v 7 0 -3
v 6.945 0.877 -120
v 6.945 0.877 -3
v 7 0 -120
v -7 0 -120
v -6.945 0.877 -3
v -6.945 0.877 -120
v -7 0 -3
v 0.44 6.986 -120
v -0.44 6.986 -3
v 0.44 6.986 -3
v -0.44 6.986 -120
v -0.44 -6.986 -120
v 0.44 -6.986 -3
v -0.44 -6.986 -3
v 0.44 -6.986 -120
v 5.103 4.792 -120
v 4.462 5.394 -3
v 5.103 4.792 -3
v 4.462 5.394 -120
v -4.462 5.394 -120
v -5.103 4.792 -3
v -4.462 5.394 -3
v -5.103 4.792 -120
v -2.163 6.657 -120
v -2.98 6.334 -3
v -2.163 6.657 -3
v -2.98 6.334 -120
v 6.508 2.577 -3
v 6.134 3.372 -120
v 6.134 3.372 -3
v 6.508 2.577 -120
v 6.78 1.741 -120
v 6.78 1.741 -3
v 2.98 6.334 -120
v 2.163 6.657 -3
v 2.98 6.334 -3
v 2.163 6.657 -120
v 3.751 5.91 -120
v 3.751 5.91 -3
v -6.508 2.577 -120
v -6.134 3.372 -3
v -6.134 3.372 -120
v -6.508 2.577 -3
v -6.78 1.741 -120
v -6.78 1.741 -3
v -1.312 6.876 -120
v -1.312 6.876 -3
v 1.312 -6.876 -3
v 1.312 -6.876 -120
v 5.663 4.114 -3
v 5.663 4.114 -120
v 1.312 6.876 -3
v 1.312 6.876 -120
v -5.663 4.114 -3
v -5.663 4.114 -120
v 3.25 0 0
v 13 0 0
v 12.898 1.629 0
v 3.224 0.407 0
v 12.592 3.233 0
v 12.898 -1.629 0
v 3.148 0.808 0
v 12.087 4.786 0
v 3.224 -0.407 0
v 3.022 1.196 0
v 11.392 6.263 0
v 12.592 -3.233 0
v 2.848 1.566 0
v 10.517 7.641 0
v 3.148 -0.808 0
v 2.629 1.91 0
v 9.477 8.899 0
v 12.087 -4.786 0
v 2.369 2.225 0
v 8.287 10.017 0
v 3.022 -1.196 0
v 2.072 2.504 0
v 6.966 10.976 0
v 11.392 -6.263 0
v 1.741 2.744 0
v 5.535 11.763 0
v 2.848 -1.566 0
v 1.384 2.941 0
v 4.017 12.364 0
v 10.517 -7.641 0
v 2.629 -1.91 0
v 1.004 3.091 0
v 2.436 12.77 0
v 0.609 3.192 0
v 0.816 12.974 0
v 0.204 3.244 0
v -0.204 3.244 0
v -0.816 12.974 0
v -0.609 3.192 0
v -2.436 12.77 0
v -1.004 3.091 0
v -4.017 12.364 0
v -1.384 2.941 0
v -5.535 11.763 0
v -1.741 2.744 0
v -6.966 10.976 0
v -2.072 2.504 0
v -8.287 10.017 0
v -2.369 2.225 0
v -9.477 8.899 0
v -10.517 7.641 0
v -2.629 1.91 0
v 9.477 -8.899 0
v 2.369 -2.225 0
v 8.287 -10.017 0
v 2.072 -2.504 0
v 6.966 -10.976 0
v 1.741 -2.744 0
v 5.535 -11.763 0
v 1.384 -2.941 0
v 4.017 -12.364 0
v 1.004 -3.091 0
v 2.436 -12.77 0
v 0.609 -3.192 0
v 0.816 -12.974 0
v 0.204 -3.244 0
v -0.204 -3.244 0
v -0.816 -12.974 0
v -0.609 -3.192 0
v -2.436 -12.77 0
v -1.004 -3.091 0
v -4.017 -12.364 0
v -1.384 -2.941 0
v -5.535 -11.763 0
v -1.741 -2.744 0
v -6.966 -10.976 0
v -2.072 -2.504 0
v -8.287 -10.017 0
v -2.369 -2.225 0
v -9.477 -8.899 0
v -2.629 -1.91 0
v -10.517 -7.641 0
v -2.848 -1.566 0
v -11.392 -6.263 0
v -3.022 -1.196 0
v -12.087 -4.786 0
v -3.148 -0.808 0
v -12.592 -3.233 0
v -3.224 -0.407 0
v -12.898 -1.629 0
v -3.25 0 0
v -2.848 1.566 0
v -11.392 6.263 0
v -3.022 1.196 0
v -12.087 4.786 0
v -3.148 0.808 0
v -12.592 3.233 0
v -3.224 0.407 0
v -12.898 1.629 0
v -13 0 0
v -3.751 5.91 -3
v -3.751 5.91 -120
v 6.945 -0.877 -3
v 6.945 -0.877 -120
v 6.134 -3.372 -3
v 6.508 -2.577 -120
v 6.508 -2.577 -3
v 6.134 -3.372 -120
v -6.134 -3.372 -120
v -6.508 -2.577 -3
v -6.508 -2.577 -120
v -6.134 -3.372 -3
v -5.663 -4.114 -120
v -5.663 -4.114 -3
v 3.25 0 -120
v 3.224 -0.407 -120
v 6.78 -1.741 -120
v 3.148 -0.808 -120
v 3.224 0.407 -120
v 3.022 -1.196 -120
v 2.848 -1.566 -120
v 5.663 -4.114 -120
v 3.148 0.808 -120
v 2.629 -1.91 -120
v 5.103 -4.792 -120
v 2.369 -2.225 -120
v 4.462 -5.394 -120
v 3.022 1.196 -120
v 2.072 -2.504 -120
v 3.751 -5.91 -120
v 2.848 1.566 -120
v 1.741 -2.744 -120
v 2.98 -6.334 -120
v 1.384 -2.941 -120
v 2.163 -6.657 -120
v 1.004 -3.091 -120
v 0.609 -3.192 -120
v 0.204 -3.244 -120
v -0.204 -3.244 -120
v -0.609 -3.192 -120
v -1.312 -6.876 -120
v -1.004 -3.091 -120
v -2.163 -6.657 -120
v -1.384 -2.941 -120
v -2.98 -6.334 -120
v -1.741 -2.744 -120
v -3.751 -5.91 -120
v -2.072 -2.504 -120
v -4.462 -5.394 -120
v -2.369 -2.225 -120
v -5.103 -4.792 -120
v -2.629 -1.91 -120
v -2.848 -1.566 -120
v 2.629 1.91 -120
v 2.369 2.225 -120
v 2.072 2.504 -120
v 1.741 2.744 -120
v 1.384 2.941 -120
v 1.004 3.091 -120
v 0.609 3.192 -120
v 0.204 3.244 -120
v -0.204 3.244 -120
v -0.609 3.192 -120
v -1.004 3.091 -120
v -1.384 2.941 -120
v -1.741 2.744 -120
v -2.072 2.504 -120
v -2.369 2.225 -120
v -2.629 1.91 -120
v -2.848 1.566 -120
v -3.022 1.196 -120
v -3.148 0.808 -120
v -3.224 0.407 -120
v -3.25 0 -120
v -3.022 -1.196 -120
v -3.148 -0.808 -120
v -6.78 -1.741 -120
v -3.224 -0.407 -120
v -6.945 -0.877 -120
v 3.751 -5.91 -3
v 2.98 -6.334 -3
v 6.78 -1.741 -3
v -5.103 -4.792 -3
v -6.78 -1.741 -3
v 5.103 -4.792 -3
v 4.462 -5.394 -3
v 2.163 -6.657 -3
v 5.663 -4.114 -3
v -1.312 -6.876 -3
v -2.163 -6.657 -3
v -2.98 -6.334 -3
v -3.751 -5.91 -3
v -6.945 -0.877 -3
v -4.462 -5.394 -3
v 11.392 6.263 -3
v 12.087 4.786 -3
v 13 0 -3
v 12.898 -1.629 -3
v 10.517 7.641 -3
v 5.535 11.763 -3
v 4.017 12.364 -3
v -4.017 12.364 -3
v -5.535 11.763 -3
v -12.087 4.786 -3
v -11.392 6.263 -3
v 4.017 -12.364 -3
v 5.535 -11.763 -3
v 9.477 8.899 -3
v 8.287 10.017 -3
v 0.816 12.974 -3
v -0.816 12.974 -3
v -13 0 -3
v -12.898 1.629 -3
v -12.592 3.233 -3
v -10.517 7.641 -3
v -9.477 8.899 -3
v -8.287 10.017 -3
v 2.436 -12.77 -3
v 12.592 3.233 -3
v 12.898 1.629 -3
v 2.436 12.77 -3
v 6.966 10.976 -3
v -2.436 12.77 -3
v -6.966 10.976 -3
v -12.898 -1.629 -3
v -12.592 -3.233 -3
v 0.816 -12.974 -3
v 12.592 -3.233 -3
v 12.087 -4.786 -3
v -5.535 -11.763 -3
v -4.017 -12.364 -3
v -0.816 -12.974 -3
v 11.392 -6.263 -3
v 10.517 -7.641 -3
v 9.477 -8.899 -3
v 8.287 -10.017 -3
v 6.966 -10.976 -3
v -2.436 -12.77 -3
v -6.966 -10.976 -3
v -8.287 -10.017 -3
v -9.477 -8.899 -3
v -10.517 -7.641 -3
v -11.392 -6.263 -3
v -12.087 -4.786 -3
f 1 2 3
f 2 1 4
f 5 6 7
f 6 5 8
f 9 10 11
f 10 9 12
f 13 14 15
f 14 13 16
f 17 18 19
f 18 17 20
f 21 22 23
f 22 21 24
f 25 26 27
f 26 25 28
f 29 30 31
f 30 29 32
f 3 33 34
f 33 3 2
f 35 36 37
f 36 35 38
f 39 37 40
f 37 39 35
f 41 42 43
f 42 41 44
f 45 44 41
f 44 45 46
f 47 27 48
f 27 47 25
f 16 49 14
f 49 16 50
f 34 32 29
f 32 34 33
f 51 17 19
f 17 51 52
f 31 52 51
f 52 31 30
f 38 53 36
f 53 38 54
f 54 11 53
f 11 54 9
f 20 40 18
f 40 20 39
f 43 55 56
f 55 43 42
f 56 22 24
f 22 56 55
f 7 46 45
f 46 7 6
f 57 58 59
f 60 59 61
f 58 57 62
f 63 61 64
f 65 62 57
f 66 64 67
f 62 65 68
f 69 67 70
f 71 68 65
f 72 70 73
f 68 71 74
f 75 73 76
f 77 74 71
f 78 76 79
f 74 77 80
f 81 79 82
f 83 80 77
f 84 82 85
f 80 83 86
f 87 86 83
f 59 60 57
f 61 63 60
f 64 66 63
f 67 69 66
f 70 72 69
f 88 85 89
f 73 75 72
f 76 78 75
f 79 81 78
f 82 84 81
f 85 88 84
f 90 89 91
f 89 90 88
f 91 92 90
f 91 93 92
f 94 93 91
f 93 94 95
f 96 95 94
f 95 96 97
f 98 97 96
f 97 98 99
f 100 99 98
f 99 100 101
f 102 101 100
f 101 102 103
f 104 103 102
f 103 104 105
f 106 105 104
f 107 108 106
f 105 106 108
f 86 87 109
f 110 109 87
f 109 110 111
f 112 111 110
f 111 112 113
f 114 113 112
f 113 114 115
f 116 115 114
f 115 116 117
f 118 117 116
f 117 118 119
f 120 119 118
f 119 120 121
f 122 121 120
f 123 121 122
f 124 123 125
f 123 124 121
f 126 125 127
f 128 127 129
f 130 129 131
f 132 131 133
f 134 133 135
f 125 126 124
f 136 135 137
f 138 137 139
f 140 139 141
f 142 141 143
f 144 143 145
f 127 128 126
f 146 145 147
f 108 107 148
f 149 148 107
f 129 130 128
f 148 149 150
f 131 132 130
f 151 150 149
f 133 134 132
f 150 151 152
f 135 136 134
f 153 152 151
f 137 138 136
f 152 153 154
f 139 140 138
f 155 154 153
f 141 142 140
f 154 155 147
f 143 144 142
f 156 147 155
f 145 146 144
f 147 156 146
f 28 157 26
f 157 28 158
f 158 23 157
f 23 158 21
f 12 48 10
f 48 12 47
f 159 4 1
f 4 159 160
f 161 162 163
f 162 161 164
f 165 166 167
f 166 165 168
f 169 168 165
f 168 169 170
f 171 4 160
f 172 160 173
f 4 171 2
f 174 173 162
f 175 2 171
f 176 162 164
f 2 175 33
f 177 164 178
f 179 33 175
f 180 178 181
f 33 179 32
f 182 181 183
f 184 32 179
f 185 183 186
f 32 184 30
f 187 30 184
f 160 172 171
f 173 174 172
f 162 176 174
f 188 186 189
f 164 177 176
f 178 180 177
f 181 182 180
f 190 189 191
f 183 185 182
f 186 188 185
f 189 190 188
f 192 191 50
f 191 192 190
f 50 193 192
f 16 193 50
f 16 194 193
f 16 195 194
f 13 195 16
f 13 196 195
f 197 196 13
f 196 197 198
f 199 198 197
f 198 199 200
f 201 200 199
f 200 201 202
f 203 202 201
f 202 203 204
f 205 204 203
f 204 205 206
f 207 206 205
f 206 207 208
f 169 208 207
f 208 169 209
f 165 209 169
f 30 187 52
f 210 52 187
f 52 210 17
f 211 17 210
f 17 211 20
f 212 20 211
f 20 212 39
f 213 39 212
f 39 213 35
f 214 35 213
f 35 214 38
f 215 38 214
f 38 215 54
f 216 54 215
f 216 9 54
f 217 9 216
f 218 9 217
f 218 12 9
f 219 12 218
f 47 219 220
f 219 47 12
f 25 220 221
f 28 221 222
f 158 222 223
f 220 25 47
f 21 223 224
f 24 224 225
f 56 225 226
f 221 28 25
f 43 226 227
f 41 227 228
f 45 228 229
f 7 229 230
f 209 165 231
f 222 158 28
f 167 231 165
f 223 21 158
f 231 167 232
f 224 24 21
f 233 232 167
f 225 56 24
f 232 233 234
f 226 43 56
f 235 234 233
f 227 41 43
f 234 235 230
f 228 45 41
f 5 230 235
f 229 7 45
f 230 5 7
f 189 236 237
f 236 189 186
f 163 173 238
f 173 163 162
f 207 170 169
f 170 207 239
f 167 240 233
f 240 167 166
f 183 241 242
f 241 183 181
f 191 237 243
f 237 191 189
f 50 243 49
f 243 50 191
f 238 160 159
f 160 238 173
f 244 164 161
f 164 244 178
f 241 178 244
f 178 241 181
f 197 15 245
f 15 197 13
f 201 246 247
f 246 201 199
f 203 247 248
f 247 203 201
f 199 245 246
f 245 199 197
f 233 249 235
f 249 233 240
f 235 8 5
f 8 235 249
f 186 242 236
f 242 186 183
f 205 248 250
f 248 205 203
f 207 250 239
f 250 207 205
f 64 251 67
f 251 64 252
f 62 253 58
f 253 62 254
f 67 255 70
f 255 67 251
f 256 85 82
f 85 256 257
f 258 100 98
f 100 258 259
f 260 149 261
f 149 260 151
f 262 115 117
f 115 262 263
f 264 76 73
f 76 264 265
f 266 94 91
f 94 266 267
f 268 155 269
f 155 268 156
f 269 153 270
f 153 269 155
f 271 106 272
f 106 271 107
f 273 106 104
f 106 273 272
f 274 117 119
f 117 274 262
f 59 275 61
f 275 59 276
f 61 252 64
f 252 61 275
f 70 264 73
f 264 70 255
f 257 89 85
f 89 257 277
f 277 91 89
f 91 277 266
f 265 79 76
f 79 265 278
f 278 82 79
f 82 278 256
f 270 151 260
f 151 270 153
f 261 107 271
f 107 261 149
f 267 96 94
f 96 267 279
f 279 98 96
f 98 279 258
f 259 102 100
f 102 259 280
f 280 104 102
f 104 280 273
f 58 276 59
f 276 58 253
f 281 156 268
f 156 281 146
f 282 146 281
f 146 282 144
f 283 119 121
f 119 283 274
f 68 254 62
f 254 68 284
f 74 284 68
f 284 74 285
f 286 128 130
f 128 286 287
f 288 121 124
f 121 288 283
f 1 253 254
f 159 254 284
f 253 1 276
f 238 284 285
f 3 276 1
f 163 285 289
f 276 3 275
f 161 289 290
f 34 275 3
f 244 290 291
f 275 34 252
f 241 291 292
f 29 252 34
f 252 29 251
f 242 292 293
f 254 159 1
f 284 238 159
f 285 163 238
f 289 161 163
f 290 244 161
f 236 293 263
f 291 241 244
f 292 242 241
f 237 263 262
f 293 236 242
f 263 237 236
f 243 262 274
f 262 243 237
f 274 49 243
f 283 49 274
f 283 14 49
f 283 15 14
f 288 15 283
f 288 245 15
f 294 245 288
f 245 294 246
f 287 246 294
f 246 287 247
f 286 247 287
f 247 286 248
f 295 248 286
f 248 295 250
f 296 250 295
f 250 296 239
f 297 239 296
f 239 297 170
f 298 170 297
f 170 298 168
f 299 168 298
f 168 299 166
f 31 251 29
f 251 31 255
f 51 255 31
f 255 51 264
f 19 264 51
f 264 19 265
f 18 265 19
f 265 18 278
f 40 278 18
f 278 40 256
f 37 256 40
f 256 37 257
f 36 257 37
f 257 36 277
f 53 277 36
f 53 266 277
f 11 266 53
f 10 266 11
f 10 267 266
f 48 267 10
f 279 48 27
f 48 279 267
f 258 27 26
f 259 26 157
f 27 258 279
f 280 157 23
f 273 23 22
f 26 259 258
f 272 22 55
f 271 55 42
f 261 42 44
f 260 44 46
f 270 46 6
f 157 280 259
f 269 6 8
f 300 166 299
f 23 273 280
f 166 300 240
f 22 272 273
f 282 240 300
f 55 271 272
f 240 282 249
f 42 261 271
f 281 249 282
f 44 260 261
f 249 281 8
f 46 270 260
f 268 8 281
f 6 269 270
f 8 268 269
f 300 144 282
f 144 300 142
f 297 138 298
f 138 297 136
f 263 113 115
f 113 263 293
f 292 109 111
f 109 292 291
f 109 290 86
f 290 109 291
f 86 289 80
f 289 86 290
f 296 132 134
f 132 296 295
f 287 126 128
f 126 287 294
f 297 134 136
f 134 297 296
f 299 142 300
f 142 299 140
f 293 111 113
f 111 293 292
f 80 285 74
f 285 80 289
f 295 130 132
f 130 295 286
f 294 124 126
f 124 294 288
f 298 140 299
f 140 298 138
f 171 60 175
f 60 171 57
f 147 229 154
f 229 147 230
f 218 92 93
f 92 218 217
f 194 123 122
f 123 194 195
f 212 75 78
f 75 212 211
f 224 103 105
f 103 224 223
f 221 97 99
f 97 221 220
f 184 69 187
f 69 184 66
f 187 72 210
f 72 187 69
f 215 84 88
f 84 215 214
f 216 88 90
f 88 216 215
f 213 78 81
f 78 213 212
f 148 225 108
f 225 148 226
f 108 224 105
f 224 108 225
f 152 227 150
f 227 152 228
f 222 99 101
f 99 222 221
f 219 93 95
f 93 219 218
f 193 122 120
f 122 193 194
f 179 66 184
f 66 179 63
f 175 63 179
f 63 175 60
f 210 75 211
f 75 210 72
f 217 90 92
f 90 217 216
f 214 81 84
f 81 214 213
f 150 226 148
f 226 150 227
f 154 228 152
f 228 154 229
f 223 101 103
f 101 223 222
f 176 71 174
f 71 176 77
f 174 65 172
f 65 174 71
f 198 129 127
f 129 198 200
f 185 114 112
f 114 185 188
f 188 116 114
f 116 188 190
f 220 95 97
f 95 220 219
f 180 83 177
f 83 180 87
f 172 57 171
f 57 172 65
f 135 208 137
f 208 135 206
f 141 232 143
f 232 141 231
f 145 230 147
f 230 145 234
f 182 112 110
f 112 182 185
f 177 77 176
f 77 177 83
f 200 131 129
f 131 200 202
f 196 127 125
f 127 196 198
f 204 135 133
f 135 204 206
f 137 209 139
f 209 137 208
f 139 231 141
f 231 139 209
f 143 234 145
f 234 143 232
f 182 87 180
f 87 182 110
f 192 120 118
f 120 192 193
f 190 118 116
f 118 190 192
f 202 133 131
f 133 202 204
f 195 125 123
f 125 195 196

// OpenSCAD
$fn = 50;


difference() {
	union() {
		translate(v = [0, 0, -120.0000000000]) {
			cylinder(h = 120, r = 7.0000000000);
		}
		translate(v = [0, 0, -3.0000000000]) {
			cylinder(h = 3, r = 13.0000000000);
		}
	}
	union() {
		#translate(v = [0, 0, -120]) {
			cylinder(h = 120, r = 3.2500000000);
		}
	}
}
